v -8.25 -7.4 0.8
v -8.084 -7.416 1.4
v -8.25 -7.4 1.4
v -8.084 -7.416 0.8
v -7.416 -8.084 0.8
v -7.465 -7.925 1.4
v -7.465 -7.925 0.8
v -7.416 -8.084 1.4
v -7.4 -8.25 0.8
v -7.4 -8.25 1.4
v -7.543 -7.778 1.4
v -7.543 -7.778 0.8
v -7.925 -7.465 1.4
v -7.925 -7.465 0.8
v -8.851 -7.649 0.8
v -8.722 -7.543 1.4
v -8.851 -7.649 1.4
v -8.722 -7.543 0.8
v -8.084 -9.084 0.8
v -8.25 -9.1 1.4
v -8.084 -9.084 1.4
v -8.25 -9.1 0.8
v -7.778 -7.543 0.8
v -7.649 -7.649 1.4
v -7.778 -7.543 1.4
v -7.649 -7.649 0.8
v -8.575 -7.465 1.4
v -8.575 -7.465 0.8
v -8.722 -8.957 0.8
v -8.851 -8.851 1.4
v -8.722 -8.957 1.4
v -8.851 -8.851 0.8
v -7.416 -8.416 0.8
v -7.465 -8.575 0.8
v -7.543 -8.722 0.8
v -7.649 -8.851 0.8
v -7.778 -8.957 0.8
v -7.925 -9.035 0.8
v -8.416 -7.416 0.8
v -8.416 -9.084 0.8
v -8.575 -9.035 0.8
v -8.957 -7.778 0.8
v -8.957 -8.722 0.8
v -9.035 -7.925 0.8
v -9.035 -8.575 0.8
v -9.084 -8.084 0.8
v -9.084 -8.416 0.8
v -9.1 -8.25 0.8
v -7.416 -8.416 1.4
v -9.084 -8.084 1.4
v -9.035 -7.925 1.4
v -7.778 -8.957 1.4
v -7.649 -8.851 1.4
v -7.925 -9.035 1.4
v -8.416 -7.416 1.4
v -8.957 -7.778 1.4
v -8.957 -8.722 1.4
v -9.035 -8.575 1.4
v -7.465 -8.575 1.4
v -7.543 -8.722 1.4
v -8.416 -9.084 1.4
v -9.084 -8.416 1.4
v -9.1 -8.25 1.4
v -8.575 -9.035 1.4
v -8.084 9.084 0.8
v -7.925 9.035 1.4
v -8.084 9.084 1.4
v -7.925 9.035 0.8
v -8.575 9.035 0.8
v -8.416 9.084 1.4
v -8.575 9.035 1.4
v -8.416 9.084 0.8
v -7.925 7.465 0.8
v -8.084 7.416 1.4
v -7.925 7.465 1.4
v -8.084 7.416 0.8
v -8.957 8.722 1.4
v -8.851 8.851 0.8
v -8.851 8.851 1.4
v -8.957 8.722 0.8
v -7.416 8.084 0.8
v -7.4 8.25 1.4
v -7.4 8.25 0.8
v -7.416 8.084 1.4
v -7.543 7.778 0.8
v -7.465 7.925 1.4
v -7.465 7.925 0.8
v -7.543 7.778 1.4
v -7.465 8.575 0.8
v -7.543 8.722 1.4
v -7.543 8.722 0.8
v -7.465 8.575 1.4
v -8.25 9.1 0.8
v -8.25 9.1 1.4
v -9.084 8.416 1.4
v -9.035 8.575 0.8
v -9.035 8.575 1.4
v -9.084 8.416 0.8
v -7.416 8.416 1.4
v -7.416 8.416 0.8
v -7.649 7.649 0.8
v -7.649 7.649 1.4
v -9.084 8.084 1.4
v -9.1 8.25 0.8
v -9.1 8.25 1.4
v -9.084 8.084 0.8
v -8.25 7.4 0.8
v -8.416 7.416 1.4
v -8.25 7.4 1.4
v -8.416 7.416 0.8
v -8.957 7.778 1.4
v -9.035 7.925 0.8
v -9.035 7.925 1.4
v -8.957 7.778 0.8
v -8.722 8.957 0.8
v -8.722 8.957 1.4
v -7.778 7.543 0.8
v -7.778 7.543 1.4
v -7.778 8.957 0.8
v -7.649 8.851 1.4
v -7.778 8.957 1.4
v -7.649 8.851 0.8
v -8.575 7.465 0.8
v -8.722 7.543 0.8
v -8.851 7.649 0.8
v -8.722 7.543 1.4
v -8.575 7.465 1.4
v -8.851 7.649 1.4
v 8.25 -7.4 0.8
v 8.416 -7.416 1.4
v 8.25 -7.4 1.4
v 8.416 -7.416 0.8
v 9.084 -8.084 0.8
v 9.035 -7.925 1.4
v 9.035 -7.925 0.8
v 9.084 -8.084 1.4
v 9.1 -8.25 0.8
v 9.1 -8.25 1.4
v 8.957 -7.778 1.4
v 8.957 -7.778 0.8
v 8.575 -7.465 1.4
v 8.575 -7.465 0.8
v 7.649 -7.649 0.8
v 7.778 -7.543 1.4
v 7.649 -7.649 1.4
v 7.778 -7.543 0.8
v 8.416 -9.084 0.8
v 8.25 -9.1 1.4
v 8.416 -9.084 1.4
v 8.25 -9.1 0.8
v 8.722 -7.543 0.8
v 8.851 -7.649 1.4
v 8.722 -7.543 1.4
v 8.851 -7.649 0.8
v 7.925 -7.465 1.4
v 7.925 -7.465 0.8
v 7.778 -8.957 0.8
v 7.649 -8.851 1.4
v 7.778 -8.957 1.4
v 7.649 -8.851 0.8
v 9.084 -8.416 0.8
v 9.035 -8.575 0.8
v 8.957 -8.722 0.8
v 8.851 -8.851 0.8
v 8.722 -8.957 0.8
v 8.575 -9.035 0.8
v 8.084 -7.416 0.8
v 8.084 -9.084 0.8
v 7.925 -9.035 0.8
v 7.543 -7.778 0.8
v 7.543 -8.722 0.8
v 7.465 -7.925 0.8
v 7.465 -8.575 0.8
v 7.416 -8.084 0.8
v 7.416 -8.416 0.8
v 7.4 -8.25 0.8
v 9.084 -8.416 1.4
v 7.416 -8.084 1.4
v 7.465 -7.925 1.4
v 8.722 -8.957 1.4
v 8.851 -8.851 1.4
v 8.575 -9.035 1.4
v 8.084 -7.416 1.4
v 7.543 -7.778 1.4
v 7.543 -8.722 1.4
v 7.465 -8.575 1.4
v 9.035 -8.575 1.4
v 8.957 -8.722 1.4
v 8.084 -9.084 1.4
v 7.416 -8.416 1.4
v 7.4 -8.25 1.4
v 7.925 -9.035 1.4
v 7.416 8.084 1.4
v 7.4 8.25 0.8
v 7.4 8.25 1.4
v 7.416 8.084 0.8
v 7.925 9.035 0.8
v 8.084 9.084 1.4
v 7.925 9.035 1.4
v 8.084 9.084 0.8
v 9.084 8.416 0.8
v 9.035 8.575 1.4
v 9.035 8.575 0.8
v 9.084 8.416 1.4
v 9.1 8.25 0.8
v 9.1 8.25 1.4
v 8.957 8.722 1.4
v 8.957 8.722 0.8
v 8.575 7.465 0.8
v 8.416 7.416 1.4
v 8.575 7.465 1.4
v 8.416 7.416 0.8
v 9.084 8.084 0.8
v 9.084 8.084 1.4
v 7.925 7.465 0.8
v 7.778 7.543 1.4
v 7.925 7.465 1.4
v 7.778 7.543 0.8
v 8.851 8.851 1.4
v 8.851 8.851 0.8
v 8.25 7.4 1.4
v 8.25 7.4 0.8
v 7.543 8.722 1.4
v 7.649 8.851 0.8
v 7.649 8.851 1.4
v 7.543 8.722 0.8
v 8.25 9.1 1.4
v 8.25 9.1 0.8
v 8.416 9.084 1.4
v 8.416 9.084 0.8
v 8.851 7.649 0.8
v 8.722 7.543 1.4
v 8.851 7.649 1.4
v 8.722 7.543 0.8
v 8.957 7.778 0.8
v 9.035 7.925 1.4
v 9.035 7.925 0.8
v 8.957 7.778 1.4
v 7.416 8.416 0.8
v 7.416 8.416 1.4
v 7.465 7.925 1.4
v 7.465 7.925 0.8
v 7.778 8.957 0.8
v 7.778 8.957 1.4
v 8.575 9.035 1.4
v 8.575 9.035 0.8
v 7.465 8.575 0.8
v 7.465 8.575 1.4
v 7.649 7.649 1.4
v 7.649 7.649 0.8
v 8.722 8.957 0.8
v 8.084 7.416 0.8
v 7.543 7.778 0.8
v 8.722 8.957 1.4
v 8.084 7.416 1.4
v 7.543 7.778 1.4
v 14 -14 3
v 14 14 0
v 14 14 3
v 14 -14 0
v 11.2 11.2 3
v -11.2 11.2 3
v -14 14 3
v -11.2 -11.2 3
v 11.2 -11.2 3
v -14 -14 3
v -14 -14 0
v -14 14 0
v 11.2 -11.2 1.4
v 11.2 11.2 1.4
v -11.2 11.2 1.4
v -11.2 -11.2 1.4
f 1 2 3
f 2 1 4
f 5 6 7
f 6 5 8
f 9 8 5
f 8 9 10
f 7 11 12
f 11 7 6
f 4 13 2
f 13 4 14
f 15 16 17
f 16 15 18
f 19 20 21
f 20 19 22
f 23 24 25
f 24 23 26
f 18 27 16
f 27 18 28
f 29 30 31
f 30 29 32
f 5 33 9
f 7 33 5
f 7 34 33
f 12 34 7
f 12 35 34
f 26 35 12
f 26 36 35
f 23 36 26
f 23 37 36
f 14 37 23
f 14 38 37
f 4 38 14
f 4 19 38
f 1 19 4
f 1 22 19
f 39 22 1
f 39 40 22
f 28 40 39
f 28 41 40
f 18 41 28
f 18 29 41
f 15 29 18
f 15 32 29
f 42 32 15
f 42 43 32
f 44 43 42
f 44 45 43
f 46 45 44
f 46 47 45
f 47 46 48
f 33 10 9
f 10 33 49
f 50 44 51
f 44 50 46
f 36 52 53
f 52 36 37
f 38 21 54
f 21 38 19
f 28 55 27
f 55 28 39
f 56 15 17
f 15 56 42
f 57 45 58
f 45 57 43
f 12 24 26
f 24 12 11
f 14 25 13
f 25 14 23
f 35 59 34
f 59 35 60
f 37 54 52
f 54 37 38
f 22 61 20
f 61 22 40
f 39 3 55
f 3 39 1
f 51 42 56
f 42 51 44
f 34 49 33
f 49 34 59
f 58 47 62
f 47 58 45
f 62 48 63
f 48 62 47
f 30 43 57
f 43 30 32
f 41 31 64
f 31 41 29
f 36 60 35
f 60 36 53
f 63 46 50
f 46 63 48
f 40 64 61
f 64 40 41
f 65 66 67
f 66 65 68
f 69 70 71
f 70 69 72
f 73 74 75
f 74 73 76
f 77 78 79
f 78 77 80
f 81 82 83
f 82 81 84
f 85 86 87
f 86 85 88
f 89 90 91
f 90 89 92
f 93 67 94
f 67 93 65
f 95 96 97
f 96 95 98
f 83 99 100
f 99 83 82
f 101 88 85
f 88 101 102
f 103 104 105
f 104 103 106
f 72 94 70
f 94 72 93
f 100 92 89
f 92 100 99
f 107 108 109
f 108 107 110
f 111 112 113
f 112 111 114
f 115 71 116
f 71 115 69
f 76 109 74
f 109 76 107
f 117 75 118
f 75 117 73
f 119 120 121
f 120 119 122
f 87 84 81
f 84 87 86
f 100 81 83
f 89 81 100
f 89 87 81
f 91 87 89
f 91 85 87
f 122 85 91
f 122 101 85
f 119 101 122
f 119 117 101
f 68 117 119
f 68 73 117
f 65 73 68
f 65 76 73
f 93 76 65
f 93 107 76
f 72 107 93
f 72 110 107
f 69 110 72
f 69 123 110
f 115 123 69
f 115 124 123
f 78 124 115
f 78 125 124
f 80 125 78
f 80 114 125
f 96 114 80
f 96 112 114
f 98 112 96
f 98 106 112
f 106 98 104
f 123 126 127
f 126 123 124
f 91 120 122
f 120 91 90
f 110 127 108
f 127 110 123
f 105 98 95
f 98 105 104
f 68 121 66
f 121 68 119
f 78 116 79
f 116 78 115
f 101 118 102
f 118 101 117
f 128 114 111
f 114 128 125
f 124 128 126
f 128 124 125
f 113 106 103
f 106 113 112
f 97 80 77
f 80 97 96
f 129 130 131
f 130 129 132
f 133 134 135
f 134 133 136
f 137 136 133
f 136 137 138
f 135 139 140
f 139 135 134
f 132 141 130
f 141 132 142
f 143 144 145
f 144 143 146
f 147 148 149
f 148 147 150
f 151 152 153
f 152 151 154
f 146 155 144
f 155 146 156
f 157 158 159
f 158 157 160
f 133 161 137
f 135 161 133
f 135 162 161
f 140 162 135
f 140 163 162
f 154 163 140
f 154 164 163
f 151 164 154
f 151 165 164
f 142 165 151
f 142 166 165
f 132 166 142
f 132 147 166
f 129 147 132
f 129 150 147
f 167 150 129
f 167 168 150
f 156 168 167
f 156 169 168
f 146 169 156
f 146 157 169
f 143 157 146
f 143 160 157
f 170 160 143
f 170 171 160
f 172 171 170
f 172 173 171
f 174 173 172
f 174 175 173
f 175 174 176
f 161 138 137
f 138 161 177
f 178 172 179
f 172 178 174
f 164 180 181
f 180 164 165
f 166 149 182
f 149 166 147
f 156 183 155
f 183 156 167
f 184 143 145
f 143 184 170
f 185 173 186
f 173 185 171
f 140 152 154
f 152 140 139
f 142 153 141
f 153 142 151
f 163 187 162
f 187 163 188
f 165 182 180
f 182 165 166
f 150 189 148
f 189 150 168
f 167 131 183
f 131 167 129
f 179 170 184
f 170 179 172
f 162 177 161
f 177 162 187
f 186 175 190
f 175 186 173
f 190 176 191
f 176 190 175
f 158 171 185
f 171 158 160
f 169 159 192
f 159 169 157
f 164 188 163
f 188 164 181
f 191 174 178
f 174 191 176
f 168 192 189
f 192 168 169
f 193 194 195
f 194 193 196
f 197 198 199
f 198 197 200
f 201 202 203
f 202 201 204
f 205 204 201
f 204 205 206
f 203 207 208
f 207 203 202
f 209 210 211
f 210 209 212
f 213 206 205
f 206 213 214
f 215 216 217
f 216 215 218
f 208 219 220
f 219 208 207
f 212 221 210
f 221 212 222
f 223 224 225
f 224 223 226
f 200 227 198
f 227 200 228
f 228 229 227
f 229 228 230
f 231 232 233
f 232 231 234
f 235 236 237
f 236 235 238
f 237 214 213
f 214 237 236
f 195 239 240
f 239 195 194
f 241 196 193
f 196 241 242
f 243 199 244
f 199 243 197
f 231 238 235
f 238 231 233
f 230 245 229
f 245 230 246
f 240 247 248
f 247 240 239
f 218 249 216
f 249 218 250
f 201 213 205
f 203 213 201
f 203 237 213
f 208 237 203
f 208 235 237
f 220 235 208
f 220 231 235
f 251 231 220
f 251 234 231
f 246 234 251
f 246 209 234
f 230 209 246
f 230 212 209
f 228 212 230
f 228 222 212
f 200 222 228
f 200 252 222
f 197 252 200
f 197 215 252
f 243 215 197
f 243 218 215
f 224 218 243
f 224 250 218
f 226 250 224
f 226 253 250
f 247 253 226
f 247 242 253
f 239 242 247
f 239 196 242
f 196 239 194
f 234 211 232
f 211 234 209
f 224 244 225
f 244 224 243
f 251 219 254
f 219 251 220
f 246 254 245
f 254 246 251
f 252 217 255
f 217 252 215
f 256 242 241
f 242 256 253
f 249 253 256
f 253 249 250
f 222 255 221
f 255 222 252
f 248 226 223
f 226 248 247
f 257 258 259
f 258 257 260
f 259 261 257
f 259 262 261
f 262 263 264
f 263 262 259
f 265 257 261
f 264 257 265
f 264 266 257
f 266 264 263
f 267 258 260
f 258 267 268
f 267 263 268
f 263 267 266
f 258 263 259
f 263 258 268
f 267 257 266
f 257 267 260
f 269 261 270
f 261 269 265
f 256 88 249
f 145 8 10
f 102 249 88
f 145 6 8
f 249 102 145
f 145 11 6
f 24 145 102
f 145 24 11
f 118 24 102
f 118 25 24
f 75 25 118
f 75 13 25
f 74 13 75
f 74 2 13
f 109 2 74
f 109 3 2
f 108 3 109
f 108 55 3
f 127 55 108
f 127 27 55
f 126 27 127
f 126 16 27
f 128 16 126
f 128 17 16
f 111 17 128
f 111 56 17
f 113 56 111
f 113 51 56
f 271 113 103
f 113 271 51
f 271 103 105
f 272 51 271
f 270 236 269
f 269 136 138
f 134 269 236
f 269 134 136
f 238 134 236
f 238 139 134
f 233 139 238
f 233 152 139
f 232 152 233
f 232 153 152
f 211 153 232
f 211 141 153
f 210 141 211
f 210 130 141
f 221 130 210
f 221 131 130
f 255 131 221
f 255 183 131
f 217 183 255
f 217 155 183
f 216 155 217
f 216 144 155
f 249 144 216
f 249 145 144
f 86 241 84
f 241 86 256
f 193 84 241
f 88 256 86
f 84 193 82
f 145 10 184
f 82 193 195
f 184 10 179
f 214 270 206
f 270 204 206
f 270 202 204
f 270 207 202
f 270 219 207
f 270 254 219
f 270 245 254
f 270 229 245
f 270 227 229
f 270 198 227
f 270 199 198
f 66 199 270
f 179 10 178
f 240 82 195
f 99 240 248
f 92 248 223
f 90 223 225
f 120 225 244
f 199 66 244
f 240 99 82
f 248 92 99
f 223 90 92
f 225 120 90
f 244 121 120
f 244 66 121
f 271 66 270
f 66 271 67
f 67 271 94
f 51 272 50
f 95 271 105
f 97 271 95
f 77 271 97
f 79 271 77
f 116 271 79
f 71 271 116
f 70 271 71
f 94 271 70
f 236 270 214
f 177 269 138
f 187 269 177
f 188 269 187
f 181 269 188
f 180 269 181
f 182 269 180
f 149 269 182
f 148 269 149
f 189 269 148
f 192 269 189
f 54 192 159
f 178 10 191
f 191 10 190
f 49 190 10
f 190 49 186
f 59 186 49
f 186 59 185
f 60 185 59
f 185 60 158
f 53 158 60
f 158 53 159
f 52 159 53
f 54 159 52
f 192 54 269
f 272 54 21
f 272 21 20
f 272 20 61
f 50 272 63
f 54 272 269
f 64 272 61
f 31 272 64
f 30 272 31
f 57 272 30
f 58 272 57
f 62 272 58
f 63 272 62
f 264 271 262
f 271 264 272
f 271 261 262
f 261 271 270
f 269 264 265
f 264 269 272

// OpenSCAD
// MT6701 board carrier (PLACEHOLDER): holds the user's 22 x 22 mm MT6701 breakout flat, chip facing up, with four M2 screws.
// The board has four holes of about 2.1 mm on a 16.5 mm square and the chip dead centre (measured from the user's photos).
//
// NOT SOLVED: where this goes. The magnet (4 mm across, 1.5 mm thick, supplied with the sensor) must sit on the motor axis
// 1-3 mm above/below the chip and turn with the rotor, but the display column and its wires occupy the axis.
// This part only exists so the board dimensions are in the repo; do not print it before the arrangement is decided.
include <params.scad>

carrier_w = mt_board + 6;     // 28 x 28
carrier_t = 3;
pocket    = mt_board + 0.4;   // 0.2 mm clearance each side
pcb_t     = 1.6;              // ESTIMATE of the MT6701 board thickness (not measured)

module sensor_holder() {
    difference() {
        translate([-carrier_w / 2, -carrier_w / 2, 0]) cube([carrier_w, carrier_w, carrier_t]);
        // pocket for the board
        translate([-pocket / 2, -pocket / 2, carrier_t - pcb_t]) cube([pocket, pocket, pcb_t + 1]);
        // four M2 pilot holes on the board's 16.5 mm square (self-tapping into PETG)
        for (sx = [-1, 1], sy = [-1, 1])
            translate([sx * mt_hole_pitch / 2, sy * mt_hole_pitch / 2, 0.8]) cylinder(d = 1.7, h = carrier_t, $fn = 32);
    }
}

sensor_holder();
